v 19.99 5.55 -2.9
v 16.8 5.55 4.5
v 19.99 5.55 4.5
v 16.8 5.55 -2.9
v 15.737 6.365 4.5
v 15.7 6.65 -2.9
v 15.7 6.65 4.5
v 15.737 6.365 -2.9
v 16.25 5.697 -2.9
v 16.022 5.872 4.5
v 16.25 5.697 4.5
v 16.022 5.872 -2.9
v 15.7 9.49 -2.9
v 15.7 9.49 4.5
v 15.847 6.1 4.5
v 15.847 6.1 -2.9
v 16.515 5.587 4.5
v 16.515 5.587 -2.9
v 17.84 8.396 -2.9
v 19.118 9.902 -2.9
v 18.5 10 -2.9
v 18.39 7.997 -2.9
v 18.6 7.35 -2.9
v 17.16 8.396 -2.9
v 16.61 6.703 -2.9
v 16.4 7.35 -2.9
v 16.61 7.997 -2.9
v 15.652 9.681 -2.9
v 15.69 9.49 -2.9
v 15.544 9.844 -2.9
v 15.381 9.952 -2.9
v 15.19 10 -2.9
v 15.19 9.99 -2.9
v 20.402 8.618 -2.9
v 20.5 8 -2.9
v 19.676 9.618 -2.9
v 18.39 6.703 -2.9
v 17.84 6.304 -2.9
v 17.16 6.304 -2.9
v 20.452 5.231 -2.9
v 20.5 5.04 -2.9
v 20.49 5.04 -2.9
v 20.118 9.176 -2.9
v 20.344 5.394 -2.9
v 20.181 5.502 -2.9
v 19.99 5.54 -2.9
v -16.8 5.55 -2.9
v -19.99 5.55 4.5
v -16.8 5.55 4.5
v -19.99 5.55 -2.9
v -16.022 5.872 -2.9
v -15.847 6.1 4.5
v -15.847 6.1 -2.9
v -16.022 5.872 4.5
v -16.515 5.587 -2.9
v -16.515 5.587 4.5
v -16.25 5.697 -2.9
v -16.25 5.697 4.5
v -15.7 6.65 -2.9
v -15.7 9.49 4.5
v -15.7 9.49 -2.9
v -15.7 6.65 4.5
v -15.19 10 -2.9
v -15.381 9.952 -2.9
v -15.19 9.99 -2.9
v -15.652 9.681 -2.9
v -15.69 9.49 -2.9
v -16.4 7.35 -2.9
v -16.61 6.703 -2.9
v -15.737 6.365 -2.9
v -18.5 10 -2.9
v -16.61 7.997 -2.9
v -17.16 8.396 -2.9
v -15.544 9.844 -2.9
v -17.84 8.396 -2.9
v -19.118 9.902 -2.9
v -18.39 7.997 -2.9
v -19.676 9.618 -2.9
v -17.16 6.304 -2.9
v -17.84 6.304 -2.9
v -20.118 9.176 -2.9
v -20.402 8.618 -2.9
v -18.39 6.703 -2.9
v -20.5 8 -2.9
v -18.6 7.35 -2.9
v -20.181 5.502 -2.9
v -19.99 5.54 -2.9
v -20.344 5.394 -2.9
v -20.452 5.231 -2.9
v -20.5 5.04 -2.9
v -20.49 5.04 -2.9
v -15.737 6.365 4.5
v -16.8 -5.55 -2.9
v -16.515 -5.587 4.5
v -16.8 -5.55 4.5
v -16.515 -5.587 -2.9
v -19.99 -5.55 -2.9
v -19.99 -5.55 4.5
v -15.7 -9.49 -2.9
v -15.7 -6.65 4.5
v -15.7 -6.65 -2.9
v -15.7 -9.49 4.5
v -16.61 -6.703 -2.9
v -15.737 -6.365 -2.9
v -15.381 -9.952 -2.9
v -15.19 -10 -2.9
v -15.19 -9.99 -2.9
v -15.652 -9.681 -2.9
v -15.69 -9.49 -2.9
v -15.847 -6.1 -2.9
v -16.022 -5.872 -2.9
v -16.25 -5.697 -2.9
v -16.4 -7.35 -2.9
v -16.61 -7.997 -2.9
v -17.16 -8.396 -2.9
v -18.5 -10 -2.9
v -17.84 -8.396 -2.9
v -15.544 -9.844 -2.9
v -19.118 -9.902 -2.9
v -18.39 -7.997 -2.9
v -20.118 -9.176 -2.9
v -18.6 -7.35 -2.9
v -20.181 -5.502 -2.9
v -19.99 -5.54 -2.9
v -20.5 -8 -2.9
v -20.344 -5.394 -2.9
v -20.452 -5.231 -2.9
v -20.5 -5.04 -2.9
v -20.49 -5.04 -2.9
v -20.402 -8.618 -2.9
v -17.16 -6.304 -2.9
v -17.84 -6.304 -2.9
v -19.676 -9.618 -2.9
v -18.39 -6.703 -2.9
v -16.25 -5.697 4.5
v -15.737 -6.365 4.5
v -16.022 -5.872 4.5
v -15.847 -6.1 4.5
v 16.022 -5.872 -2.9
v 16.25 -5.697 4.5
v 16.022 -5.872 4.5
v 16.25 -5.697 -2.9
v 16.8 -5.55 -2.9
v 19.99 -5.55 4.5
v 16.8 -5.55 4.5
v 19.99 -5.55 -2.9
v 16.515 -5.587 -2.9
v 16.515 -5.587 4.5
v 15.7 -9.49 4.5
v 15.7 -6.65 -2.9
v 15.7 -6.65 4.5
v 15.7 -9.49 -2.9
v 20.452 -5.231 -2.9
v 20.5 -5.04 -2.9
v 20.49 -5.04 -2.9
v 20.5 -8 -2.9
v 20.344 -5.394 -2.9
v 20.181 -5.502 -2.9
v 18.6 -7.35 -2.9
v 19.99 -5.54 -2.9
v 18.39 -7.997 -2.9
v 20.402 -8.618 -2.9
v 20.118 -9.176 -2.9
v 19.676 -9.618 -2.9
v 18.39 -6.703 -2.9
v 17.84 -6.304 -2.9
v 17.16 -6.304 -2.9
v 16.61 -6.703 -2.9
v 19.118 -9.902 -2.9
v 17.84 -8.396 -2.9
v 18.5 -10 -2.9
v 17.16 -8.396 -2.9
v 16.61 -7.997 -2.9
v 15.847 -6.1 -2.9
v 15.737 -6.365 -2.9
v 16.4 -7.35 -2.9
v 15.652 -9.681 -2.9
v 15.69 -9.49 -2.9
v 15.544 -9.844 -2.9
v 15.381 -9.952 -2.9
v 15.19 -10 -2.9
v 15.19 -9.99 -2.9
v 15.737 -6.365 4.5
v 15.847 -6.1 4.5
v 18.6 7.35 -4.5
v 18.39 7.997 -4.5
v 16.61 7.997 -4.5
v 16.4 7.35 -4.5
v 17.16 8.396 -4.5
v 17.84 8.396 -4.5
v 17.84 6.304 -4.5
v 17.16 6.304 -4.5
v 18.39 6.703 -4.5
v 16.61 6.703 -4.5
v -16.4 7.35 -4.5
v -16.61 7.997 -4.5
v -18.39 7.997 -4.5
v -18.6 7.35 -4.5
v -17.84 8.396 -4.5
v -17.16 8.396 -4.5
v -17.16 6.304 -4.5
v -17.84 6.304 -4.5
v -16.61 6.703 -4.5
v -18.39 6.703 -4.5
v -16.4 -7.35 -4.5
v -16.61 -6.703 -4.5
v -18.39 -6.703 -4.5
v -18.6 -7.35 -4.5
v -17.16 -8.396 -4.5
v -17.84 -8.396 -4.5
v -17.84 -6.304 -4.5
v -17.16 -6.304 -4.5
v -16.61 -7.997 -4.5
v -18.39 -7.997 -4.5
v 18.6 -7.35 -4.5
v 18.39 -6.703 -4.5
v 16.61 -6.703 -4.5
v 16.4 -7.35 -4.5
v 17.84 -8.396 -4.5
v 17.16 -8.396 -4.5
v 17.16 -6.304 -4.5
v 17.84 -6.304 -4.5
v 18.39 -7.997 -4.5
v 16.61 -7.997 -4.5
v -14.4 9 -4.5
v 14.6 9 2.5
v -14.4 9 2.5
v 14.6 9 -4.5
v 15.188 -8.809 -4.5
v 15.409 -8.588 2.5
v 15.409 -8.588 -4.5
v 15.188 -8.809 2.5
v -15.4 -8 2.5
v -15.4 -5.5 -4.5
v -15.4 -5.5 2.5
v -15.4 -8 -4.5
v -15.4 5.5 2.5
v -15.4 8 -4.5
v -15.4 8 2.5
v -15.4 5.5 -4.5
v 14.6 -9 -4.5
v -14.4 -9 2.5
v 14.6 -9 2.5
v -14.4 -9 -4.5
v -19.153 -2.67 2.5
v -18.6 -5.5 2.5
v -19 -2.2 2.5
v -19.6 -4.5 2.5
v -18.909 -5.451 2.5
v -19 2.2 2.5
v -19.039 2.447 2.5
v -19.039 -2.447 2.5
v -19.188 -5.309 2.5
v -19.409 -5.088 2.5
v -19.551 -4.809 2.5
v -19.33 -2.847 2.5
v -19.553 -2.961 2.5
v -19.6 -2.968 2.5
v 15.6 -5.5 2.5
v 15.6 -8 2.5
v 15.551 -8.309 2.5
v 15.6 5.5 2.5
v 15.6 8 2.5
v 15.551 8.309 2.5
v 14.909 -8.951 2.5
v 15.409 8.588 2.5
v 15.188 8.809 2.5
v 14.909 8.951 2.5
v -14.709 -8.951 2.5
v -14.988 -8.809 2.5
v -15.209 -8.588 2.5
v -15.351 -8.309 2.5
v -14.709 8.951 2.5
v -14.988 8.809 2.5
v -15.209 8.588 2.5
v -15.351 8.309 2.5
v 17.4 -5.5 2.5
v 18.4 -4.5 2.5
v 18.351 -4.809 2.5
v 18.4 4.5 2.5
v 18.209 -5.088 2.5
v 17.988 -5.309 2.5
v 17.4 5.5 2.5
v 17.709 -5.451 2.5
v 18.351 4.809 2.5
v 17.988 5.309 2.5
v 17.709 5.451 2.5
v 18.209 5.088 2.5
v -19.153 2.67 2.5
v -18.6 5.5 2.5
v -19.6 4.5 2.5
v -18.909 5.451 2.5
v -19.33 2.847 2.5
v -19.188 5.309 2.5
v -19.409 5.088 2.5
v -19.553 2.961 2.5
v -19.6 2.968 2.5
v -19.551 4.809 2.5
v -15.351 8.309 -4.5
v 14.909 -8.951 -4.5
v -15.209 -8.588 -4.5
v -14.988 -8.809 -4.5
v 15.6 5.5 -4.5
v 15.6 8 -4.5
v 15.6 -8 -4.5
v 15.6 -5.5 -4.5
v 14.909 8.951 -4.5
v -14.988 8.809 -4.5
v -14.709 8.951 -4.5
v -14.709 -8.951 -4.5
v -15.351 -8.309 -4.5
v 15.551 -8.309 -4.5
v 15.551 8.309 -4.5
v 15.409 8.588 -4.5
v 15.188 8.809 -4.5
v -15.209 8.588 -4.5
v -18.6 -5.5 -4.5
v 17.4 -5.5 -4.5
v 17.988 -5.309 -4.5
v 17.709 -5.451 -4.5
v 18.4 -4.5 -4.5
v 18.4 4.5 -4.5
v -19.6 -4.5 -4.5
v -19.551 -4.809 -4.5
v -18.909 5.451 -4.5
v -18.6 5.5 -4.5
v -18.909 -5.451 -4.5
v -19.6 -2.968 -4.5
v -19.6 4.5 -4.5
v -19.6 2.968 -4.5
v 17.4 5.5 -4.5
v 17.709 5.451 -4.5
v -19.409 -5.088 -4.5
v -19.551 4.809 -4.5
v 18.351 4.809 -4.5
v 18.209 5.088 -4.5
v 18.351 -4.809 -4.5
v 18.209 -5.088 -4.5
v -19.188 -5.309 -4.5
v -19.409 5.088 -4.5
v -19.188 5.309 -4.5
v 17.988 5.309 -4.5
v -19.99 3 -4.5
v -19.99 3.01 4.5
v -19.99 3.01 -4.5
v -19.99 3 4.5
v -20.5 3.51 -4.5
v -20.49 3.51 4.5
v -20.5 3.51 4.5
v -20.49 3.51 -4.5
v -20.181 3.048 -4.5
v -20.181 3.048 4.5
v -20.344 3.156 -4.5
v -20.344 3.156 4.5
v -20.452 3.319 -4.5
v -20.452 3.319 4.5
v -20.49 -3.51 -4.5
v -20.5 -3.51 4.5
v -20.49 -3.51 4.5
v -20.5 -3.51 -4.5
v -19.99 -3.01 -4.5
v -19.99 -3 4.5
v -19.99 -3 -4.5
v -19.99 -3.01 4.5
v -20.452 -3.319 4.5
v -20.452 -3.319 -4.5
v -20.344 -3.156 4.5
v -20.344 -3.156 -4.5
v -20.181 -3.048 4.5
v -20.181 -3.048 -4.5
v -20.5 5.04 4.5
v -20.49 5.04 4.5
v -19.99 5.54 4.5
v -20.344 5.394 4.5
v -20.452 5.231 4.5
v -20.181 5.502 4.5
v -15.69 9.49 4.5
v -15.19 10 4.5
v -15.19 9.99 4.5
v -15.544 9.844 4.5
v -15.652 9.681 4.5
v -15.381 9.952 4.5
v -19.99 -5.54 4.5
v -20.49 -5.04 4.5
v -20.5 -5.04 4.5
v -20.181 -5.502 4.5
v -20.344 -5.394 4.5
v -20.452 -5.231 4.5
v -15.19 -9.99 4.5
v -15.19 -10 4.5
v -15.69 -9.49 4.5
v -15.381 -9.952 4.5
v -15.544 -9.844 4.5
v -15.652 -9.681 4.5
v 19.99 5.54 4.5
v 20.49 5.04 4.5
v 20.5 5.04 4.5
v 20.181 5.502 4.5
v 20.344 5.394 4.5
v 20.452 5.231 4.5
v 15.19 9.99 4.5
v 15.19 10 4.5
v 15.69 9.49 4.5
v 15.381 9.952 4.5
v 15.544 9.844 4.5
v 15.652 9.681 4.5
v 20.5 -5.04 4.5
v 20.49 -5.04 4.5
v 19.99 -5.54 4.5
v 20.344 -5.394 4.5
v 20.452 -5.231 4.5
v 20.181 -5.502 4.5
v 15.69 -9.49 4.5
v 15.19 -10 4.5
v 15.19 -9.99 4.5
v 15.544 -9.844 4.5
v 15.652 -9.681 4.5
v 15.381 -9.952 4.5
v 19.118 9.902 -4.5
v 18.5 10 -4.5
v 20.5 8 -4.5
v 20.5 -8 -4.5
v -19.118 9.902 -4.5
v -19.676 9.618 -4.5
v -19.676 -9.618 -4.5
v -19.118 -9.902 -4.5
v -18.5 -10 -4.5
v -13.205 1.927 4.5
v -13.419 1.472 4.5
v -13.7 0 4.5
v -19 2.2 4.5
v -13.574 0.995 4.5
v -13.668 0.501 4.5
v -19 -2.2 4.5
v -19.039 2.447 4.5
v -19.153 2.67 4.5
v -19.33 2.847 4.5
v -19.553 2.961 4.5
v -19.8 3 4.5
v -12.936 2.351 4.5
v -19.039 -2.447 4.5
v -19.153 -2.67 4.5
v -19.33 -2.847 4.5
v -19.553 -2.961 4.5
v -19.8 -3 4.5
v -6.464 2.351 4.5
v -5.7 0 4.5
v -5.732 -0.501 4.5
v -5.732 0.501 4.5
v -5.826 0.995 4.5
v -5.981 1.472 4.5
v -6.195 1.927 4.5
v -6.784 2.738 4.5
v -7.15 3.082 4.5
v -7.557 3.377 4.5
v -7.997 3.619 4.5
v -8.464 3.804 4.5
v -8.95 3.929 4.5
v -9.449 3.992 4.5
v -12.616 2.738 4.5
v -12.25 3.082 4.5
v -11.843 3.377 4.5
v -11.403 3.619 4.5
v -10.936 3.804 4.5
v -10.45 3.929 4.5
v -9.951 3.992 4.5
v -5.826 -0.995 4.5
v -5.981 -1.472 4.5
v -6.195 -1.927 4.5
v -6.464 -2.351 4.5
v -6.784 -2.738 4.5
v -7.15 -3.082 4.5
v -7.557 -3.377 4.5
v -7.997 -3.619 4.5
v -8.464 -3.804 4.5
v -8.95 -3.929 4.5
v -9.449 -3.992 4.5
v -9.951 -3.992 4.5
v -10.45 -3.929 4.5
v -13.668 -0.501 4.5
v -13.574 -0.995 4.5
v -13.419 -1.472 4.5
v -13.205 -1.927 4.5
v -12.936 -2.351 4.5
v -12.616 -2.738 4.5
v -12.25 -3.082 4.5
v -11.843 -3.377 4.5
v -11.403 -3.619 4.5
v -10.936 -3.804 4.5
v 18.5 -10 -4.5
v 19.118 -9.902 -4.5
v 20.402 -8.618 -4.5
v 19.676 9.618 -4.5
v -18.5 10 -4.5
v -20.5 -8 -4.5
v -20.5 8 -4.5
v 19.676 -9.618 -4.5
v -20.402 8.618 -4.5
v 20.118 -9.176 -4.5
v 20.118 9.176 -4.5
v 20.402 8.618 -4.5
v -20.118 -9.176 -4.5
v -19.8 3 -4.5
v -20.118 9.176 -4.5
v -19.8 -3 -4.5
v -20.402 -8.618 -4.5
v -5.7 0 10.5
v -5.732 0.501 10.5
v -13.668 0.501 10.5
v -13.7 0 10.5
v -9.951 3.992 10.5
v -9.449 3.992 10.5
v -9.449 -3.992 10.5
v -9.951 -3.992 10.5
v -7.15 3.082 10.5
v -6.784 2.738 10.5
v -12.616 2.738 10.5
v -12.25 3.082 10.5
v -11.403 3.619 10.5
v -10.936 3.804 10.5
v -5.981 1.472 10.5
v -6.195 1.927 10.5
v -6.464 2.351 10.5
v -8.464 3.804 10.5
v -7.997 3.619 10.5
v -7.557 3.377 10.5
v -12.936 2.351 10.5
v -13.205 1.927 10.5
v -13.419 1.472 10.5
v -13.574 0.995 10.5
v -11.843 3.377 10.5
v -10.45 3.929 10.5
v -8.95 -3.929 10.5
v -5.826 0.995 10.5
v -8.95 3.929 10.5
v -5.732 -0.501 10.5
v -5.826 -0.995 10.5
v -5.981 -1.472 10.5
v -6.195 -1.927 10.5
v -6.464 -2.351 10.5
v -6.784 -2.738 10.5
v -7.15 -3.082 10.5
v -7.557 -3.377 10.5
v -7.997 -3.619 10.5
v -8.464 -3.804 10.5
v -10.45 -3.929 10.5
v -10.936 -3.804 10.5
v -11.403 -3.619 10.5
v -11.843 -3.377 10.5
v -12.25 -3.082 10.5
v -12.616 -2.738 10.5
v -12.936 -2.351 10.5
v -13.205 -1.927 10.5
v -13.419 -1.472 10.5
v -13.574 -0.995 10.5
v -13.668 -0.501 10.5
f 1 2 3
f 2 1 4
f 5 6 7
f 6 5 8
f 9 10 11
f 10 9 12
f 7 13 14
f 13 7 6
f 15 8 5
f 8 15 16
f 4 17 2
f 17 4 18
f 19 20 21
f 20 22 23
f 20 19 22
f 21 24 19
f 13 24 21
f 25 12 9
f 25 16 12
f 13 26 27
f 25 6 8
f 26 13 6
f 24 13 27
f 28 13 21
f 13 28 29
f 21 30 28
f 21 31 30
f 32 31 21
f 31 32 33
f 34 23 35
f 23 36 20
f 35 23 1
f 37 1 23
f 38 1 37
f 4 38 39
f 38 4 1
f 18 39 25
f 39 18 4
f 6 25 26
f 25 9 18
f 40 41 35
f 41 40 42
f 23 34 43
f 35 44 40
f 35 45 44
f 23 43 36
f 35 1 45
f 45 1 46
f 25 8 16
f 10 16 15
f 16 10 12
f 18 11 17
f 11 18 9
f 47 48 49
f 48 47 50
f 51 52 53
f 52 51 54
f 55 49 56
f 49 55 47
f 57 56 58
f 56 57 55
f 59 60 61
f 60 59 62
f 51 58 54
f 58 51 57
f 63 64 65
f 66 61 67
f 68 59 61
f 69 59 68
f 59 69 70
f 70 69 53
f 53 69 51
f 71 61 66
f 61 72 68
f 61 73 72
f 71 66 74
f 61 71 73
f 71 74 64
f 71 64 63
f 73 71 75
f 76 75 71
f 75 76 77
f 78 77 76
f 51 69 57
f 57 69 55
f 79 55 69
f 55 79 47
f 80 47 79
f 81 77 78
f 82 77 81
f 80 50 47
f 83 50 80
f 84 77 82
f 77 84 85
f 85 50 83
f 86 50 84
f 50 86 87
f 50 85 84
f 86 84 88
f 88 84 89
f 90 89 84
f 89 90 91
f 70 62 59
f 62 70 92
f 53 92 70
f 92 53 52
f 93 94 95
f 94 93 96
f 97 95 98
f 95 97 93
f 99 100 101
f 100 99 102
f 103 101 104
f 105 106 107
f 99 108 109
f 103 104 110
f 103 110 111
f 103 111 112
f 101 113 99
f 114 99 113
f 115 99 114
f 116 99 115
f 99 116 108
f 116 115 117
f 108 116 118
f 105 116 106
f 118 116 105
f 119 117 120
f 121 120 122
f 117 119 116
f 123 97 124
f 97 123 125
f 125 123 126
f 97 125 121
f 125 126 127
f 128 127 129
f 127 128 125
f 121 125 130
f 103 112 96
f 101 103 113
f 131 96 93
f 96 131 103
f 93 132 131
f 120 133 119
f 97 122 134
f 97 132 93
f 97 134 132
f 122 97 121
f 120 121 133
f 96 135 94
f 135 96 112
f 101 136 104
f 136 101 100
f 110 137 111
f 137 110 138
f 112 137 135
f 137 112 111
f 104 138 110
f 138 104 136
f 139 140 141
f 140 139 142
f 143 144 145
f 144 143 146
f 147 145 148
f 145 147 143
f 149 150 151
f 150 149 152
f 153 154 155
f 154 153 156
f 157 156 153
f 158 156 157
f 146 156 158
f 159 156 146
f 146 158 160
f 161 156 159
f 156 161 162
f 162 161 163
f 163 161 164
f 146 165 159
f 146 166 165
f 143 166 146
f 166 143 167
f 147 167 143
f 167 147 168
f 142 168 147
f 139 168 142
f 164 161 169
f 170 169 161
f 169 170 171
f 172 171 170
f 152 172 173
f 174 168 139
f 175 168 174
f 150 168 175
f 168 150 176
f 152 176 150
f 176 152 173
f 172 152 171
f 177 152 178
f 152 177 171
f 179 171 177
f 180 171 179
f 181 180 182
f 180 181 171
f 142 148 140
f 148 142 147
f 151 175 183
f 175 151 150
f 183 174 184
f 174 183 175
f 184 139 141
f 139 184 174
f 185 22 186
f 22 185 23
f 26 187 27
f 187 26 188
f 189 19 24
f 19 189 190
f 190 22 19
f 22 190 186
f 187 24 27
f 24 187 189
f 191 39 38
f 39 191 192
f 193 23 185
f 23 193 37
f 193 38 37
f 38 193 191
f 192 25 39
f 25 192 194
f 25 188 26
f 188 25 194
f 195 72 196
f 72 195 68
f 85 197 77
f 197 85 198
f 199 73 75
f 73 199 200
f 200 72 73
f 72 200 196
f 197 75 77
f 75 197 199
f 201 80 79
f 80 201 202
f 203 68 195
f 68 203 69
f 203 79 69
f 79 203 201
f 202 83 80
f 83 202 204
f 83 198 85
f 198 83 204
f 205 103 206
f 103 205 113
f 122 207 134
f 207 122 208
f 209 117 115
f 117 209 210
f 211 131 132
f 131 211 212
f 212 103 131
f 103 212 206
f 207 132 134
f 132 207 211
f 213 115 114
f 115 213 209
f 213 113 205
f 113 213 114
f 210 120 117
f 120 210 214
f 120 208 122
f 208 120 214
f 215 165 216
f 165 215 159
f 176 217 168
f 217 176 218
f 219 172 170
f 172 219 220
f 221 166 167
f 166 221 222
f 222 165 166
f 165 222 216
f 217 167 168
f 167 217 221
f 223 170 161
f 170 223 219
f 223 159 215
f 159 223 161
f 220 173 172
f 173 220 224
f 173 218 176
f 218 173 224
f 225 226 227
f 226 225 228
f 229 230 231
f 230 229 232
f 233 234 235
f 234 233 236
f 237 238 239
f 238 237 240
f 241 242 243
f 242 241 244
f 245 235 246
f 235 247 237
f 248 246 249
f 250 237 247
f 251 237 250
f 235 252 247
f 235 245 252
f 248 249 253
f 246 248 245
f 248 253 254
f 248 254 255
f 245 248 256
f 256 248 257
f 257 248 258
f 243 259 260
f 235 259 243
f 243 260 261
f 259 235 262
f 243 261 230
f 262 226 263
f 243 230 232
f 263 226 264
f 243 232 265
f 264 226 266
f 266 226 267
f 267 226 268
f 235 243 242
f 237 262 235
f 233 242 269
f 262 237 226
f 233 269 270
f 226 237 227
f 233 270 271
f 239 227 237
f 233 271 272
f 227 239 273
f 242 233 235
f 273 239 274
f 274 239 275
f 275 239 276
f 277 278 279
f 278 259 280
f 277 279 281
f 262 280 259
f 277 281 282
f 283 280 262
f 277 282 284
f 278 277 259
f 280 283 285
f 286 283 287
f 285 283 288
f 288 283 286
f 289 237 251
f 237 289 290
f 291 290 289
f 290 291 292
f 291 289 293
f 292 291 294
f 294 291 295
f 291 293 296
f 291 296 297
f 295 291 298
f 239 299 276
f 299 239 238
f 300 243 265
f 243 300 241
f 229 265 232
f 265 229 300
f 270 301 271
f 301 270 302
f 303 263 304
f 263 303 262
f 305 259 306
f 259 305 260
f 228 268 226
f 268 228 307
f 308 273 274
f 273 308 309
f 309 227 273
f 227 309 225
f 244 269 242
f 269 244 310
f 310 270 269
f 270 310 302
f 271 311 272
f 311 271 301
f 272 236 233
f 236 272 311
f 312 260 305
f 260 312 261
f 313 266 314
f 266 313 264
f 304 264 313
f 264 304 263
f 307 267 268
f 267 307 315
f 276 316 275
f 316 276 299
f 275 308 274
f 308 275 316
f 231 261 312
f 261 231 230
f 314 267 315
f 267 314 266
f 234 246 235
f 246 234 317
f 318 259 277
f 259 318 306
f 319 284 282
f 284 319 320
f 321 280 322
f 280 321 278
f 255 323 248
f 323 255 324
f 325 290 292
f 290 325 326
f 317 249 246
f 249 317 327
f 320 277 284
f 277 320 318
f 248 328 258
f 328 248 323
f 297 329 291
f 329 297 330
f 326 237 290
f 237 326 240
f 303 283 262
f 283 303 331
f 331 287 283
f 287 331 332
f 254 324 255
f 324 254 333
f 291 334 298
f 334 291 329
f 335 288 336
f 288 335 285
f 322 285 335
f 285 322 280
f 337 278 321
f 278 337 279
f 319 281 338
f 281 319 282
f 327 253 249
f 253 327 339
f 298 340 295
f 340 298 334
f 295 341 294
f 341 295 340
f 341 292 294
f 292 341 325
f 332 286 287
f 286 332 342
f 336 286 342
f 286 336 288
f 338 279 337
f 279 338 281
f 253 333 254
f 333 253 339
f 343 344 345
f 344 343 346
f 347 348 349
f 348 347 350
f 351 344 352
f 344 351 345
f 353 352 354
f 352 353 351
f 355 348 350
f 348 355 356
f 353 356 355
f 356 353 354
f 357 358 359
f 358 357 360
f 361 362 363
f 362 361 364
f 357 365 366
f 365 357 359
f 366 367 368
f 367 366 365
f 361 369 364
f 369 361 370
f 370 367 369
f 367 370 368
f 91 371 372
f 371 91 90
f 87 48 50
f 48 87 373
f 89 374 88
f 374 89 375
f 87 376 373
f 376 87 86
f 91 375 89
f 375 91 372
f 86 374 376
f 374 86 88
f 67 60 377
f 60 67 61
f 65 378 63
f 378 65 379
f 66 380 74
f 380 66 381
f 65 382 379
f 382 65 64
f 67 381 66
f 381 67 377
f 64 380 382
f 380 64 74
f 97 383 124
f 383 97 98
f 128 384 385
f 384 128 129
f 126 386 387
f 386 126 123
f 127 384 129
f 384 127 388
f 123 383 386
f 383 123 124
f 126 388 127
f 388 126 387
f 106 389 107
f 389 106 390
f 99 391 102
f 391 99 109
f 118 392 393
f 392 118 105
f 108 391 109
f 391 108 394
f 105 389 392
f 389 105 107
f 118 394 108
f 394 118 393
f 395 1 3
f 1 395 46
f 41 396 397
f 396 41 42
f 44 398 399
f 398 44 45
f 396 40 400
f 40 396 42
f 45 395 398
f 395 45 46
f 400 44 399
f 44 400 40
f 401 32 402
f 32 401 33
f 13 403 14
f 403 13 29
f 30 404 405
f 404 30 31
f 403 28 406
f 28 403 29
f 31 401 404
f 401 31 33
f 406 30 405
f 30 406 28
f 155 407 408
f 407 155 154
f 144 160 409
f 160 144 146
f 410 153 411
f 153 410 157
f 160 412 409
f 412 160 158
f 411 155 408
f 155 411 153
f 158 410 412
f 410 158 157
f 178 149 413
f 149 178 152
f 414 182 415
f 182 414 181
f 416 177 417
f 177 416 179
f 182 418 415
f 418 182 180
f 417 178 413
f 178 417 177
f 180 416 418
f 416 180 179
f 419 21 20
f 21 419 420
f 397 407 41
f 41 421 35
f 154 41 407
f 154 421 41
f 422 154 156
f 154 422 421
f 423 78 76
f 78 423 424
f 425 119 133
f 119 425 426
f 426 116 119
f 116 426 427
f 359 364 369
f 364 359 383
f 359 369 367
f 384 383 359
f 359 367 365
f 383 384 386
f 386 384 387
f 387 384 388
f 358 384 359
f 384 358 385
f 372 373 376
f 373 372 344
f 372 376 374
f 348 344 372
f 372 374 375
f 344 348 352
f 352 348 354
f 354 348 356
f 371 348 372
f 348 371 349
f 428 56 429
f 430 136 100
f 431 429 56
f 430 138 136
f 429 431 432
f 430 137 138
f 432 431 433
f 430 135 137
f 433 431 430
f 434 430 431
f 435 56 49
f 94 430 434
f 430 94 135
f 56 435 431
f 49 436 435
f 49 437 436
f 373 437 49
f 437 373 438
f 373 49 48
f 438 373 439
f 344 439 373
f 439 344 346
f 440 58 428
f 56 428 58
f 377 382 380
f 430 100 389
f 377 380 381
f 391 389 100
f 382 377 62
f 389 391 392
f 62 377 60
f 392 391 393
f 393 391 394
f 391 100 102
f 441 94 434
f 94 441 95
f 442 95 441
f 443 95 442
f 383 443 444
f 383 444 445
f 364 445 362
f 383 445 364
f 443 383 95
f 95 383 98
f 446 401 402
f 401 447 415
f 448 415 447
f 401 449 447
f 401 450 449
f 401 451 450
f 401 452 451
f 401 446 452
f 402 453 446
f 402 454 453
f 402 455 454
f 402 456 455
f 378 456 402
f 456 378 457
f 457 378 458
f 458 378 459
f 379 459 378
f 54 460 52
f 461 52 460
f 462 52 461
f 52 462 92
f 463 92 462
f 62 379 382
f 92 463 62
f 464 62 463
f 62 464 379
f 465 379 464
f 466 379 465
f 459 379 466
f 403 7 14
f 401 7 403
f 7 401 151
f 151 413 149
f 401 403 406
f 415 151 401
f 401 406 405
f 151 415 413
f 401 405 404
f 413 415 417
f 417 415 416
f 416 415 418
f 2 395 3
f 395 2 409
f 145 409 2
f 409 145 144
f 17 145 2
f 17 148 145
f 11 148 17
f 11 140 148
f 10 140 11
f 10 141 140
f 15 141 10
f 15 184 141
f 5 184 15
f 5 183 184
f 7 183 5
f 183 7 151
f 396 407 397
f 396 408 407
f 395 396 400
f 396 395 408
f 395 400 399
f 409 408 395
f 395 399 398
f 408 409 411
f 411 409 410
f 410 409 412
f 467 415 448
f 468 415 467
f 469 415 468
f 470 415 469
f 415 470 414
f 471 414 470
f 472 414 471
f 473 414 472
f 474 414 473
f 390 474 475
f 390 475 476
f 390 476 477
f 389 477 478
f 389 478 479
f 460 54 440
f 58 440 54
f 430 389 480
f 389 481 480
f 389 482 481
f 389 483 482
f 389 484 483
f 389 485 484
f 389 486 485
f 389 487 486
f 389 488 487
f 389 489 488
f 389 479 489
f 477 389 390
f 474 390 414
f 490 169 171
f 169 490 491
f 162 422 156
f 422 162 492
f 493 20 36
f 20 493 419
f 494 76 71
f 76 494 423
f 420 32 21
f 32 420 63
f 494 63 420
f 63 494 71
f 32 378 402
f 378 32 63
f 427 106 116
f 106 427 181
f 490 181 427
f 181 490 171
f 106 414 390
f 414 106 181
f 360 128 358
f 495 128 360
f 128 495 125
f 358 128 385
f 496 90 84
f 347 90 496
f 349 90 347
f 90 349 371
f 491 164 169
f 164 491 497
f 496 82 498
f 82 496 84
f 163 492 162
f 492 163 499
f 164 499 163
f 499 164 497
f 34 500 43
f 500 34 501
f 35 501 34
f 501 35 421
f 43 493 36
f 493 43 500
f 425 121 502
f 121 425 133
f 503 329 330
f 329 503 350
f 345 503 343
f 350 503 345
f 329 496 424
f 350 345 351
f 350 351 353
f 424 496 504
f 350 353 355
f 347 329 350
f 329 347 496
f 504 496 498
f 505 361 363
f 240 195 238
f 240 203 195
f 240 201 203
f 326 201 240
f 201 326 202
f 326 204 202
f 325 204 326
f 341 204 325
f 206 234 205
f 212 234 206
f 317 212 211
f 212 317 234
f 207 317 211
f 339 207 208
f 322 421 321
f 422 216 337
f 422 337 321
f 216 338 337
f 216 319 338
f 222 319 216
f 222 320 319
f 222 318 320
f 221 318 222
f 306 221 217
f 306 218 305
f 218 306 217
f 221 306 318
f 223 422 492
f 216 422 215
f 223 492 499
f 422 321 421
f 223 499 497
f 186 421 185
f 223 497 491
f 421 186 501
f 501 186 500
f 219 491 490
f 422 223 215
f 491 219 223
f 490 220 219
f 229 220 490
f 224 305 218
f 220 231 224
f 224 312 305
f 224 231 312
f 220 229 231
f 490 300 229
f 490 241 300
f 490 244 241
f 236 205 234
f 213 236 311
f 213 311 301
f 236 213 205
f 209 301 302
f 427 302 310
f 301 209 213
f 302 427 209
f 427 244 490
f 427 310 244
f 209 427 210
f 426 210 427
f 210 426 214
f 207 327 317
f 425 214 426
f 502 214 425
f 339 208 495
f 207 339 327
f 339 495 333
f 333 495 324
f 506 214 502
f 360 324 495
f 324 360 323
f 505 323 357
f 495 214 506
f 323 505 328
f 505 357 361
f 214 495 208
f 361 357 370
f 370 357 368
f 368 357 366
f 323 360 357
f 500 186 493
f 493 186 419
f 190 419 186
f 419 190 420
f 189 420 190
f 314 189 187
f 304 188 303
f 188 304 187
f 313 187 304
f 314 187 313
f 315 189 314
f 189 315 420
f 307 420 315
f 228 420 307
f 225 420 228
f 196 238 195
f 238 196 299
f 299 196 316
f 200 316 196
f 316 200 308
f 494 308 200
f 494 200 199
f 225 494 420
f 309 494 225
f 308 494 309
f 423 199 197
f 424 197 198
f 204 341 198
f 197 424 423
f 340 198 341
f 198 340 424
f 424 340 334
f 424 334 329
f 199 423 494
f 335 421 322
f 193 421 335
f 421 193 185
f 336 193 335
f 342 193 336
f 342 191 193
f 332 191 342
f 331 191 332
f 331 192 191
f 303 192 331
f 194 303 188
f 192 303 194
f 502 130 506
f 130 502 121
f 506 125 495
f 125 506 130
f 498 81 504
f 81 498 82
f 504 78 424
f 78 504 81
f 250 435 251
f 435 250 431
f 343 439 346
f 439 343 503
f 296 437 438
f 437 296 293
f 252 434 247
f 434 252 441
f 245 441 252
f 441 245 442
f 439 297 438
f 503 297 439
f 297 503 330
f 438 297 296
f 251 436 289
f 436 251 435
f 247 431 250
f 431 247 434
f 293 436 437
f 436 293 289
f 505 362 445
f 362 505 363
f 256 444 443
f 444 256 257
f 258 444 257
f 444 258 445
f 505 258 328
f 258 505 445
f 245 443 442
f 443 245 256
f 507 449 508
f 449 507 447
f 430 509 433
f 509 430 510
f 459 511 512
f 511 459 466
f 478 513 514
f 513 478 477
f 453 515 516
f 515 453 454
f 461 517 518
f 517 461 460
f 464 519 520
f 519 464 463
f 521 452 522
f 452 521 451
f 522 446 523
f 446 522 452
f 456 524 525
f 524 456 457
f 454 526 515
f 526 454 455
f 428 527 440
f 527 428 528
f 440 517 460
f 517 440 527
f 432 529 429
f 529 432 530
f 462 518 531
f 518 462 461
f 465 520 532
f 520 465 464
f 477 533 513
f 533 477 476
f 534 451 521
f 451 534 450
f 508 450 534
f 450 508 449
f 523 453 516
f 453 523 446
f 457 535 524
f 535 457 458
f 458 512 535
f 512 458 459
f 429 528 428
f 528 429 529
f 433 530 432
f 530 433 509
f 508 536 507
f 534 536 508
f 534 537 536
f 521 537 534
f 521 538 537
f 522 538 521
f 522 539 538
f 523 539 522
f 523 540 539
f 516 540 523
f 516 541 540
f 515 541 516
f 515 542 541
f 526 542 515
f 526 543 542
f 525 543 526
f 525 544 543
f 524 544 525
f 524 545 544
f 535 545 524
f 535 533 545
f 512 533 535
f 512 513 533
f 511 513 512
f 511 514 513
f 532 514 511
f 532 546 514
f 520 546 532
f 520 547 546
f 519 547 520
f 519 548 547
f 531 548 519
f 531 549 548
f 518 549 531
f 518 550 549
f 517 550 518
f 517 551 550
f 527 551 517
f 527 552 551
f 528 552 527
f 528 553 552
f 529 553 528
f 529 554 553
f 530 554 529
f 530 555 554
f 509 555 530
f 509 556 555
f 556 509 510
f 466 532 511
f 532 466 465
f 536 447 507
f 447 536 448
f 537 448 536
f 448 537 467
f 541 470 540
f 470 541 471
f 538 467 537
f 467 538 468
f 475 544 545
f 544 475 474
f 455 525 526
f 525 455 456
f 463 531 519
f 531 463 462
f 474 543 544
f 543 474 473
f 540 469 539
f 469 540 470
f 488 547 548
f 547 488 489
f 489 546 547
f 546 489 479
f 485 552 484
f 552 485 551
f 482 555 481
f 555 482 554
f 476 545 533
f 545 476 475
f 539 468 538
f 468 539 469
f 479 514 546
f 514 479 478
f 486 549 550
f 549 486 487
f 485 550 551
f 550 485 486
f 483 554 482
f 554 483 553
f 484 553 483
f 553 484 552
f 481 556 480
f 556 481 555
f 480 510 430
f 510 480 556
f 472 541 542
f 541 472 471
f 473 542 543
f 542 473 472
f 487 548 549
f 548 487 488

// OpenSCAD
// file: obiscad/attach.scad
//---------------------------------------------------------------
//-- Openscad Attachment library
//-- Attach parts easily. Make your designs more reusable and clean
//---------------------------------------------------------------
//-- This is a component of the obiscad opescad tools by Obijuan
//-- (C) Juan Gonzalez-Gomez (Obijuan)
//-- Sep-2012
//---------------------------------------------------------------
//-- Released under the GPL license
//---------------------------------------------------------------

use <vector.scad>

//--------------------------------------------------------------------
//-- Draw a connector
//-- A connector is defined a 3-tuple that consist of a point
//--- (the attachment point), and axis (the attachment axis) and
//--- an angle the connected part should be rotate around the 
//--  attachment axis
//--
//--- Input parameters:
//--
//--  Connector c = [p , n, ang] where:
//--
//--     p : The attachment point
//--     v : The attachment axis
//--   ang : the angle
//--------------------------------------------------------------------
module connector(c)
{
  //-- Get the three components from the connector
  p = c[0];
  v = c[1];
  ang = c[2];

  //-- Draw the attachment poing
  color("Gray") point(p);

  //-- Draw the attachment axis vector (with a mark)
  translate(p)
    rotate(a=ang, v=v)
    color("Gray") vector(unitv(v)*6, l_arrow=2, mark=true);
}


//-------------------------------------------------------------------------
//--  ATTACH OPERATOR
//--  This operator applies the necesary transformations to the 
//--  child (attachable part) so that it is attached to the main part
//--  
//--  Parameters
//--    a -> Connector of the main part
//--    b -> Connector of the attachable part
//-------------------------------------------------------------------------
module attach(a,b)
{
  //-- Get the data from the connectors
  pos1 = a[0];  //-- Attachment point. Main part
  v    = a[1];  //-- Attachment axis. Main part
  roll = a[2];  //-- Rolling angle
  
  pos2 = b[0];  //-- Attachment point. Attachable part
  vref = b[1];  //-- Atachment axis. Attachable part
                //-- The rolling angle of the attachable part is not used

  //-------- Calculations for the "orientate operator"------
  //-- Calculate the rotation axis
  raxis = cross(vref,v);
    
  //-- Calculate the angle between the vectors
  ang = anglev(vref,v);
  //--------------------------------------------------------.-

  //-- Apply the transformations to the child ---------------------------

  //-- Place the attachable part on the main part attachment point
  translate(pos1)
    //-- Orientate operator. Apply the orientation so that
    //-- both attachment axis are paralell. Also apply the roll angle
    rotate(a=roll, v=v)  rotate(a=ang, v=raxis)
      //-- Attachable part to the origin
      translate(-pos2)
	children(0); 
}


//--------------------------------------------------------------------
//---   An example of the attach operator
//---  
//---  There are two parts: the main body and an arm
//---  They both are cubes (for simplicity)
//---
//--   In the main body there are 2 connectors defined, so that
//--  the arm can be attached to any of them (or both if you like)
//------------------------------------------------------------------

//-- In the debug mode the connectors and additional information
//-- are shown
debug=true;

//-- Define the Main part: A cube
//-- Two attachment points are defined: one on the top, another in the
//--- left side
size = [10,10,10];

//-- Connectors defined:

//--     Att. point       Att. Axis  Roll
c1 = [ [0,0,size[2]/2],  [0,0,1],     20];  //-- Connector on the top
c2 = [ [-size[0]/2,0,0], [-1,0,0],    90];  //-- Connector on the left


//-- Draw the main part along with the connectors (for debugging)
cube(size,center=true);

//-- In debug mode: Draw the main part connectors!
if (debug) {
  connector(c1);
  connector(c2);
}

//-- Define the Attachable part. It is another cube, with one connector
asize = [5,20,3];
a = [ [0,asize[1]/2-3,-asize[2]/2], [0,0,1], 0  ];


//-- Do the attach!
//-- Just change c1 by c2 to attach the part to the other 
//-- connector. Super-easy!! :-)
//-- Modify the c1 and c2 roll angle for rotating the attachable
//--  part to the desired orientation
attach(c1,a)
  //-- This is the attachable part! 
  union() {
    cube(asize,center=true);  //-- The part

    //-- In debug mode show additional info:
    if (debug) {
      frame(l=10);    //-- The part frame of reference.
      connector(a);   //-- Show the part connector
    }
  };

  
// file: obiscad/bcube.scad
//------------------------------------------------------------------------------
//  Bevel edge cube.
//  (c) Juan Gonzalez-Gomez (Obijuan), Sep-2012
//------------------------------------------------------------------------------

//----------------- IMPLEMENTATION USING THE MINKOWSKI OPERATOR ----------------

//------------------------------------------------------------------------------
//-- Bevel Cube main function
//-- Parameters:
//--   * Size:  Cube size
//--   * cr : Corner radius (if cr==0, a standar cube is built)
//--   * cres:  Corner resolution (in points). cres=0 means flat corners
//------------------------------------------------------------------------------
module bcube(size,cr=0,cres=0)
{
  //-- Internal cube size
  bsize = size - 2*[cr,cr,0];

  //-- Get the (x,y) coorner coordinates in the 1st cuadrant
  x = bsize[0]/2;
  y = bsize[1]/2;

  //-- A corner radius of 0 means a standar cube!
  if (cr==0)
    cube(bsize,center=true);
  else {

      
      //-- The height of minkowski object is double. So
      //-- we sould scale by 0.5
      scale([1,1,0.5])

      //-- This translation is for centering the minkowski objet
      translate([-x, -y,0])

      //-- Built the  beveled cube with minkowski
      minkowski() {

        //-- Internal cube
        cube(bsize,center=true);

        //-- Cylinder in the corner (1st cuadrant)
        translate([x,y, 0])
          cylinder(r=cr, h=bsize[2],center=true, $fn=4*(cres+1));
      }
  }

}


//-- Examples of use of the bcube() module

//-- Standar cube
translate([-15,15,0])
bcube([20,20,10]);

//-- Beveled cube (0 point resolution)
translate([15,15,0])
  bcube([20,20,10],cr=4);

//-- Beveled cube (1 point resolution)
translate([-15,-15,0])
  bcube([20,20,10],cr=4, cres=1);

//-- Beveled cube (4 points resolution)
translate([15,-15,0])
  bcube([20,20,10],cr=4, cres=4);
// file: obiscad/utils.scad
//---------------------------------------------------------------
//-- Utils. General utilities...
//-- This is a component of the obiscad opescad tools by Obijuan
//-- (C) Juan Gonzalez-Gomez (Obijuan)
//-- Sep-2012
//---------------------------------------------------------------
//-- Released under the GPL license
//---------------------------------------------------------------

//-----------------------------------------------------
//-- Functions for converting a scalar into a vector:
//-----------------------------------------------------
//-- The scalar is interpreted as the x coordinate
function VX(x) = [x,0,0];

//-- The scalar is interpreted as the y coordinate
function VY(y) = [0,y,0];

//-- The scalar is interpreted as the z coordinate
function VZ(z) = [0,0,z];


//-----------------------------------------
//-- Definition for accessing vector componentes easily
//--------------------------------------------------------
X = 0;
Y = 1;
Z = 2;
// main file
//-------------------------------------------------------------------
//-- Servo lid replacement
//-- (c) Juan Gonzalez-Gomez (Obijuan). Sep-2012
//-------------------------------------------------------------------
//-- The original lid has been design for the Futaba 3003 servos
//-- But, as it is a parameterized design, the user can easily
//-- adapt to other servos
//--
//--  In addition, it is very easy to modify the lid to add a fake
//--- shaft, or in general customize it for improving the design
//--
//--  It is particulary interesting for designing robots. If a fake
//--  shaft is included, the mechanical designs are greatly simplified! 
//-------------------------------------------------------------------
//-- Released under the GPL license. 
//-------------------------------------------------------------------

//---  Obiscad!!
include <obiscad/utils.scad>
use <obiscad/bcube.scad>
use <obiscad/attach.scad>
use <obiscad/bevel.scad>

//-----------------------------------------------------------------------------------
//-- USER AREA. The user should change this parameters depending on the Servo used  
//-- The default values have been calculated for the SERVO FUTABA 3003
//-----------------------------------------------------------------------------------

//-- Fake shaft
fake_shaft = true;   //-- Set to false for removing
fake_shaft_len = 6;  //-- Shaft length
fake_shaft_diam = 8;  //-- Shaft diameter
fake_shaft_xpos = -9.7;  //-- X coordinate of the shaf position



//-------------------------- Main Base --------------------------
bsize = [41, 20, 9];  //-- base size
b_cr=2;               //-- Base corner radius
b_cres=4;             //-- Baser corner resolution


//-- ----------------------- Screw cutouts ----------------------
//-- These are the areas removed from the main base to give
//-- room to the screw heads
screw_lh = 1.6;         //- Screw layer height, Relative to the bottom
screw_head_diam = 3.2;  //-- Screw head diameter
screw_head_clear = 0.2; //-- Space between the screw head and the base


//-------------------------- Drills ------------------------------
ddiam=2.2;  //-- Drills diameter
ddx=35;     //-- Distance in the x axis between the drills
ddy=14.7;   //-- Distance in the y axis between the distance

//-------------------------- Electronic cutouts -------------------
//-- These are removed from the bottom of the base to make room
//-- for the servo electronics
elec_cutout_lh = 7;

//-- dimensions (on xy plane) of the cutouts
elec_cutout_dim = [
  [31, 18],   //-- Left cutout
  [38,  11],   //-- Right cutout
];

//-- Distance from the nearer drill (on the x axis)
//-- (not from the drill center, but the nearest drill surface)
//-- (so that it can be meassured easily with a caliper)
elec_cutout_clearx = [
  1, -2
];

elec_co_cr = 1;    //-- Corner radius
elec_co_cres = 4;  //-- Corner resolution

//-------------------------- Cable hole ----------------------------
//-- Cable hole dimensions
cable_hole_dim = [1.5, 6];

ch_cr = 0.8;  //-- Cable hole corner radius
ch_cres = 4;  //-- Cable hole corner resolution

//------------------------ Beveled edges -----------------------------
bevel_cr = 0.5;




//---------------------------------------------------------------------------------
//---        IMPLEMENTATION!!
//---------------------------------------------------------------------------------
//--  The USER should be able to change the base modifying only the above
//--  user parameters
//--
//--  The implementation is divided into 2 stages:
//--
//--  1) DATA calculation: It creates tables and definitions for further
//--     build the base more easily
//--  2) CODE: It just build the Servo Base, based only on the data
//-----------------------------------------------------------------------------------


//---------------------------------------
//-- DATA for the drills
//---------------------------------------
//-- Calculate the drill coordinates from the center of the base
dx=ddx/2;
dy=ddy/2;

//-- Build the drill table, for automating the process of 
//-- making drills
//-- All the drill are symetric respect the x and y axis
drill_table = [
  [dx,   dy, 0],
  [-dx,  dy, 0],
  [-dx, -dy, 0],
  [dx,  -dy, 0],
];


//-------------------------------------------------------------
//-- DATA for the First layer: screw layer
//-------------------------------------------------------------

//-- Extra value. Does not matter the value (but it should be > 0
extra = 5;


//-- Calculate the clear distance from the drill center
clear = screw_head_diam/2 + screw_head_clear;

//-- Calculate the cutout size
scx = bsize[X]/2-drill_table[0][X]+clear+extra;
scy = bsize[Y]/2-drill_table[0][Y]+clear+extra;
screw_cutout_size = [scx,scy, bsize[Z]];

//-- vector for the z position of the cutouts:
//-- They are screw_lh high from the bottom 
sc_z = [0,0, -bsize[Z]/2+screw_lh];


//-- Connector table. It contains the pairs of connectors for performing
//-- the attach operation.
//-- The first connector of the pair belongs to the base, the second to the cutout
//-- The connectors coordinates are relative to the drills
screw_connector_table = [

  //-- First quadrant
  [ [drill_table[0]+[-clear, -clear,0]+sc_z, [0,0,1], 0 ],  //-- First pair of connectors
   [[-screw_cutout_size[X]/2, -screw_cutout_size[Y]/2, -screw_cutout_size[Z]/2],[0,0,1],0]
  ],

  //-- Second quadrant
  [ [drill_table[1]+[clear, -clear,0]+sc_z, [0,0,1], 0 ],
    [[screw_cutout_size[X]/2, -screw_cutout_size[Y]/2, -screw_cutout_size[Z]/2],[0,0,1],0]
  ],

  //-- Third quadrant
  [ [drill_table[2]+[clear, clear,0]+sc_z, [0,0,1], 0 ],
    [[screw_cutout_size[X]/2, screw_cutout_size[Y]/2, -screw_cutout_size[Z]/2],[0,0,1],0]
  ],

  //-- Forth quadrant
  [ [drill_table[3]+[-clear, clear,0]+sc_z, [0,0,1], 0 ],
    [[-screw_cutout_size[X]/2, screw_cutout_size[Y]/2, -screw_cutout_size[Z]/2],[0,0,1],0]
  ],
 
];

//---------------------------------------
//-- DATA for the electronics cutouts
//---------------------------------------

//-- vector for the z position of the cutouts:
//-- They are elec_cutout_lh high from the bottom 
ec_z = [0,0, -bsize[Z]/2+elec_cutout_lh];

//-- Auxiliary table with the cutout size
elec_co_size = [
  [elec_cutout_dim[0][X], elec_cutout_dim[0][Y], bsize[Z]],
  [elec_cutout_dim[1][X], elec_cutout_dim[1][Y], bsize[Z]]
];


//-- Connector table. It contains the pairs of connectors for performing
//-- the attach operation.
//-- The first connector of the pair belongs to the base, the second to the cutout
//-- The connectors coordinates are relative to the drills
elec_connector_table = [

  //-- Connector pair for the Left cutout (relative to the upper-left drill)
  [ [VX(drill_table[1][X]+ddiam/2+elec_cutout_clearx[0])+
     VY(elec_co_size[0][Y]/2)+ ec_z,
     [0,0,1], 0],                        //-- Base connector
     
    [[-elec_co_size[0][X]/2, elec_co_size[0][Y]/2 ,elec_co_size[0][Z]/2],[0,0,1],0]
  ],
 
  //-- connector pair for the right cutout (relative to the upper-right drill)
  [ [VX(drill_table[0][X]-ddiam/2-elec_cutout_clearx[1])+
     VY(elec_co_size[1][Y]/2)+ec_z,
     [0,0,1], 0],

    [[elec_co_size[1][X]/2, elec_co_size[1][Y]/2 ,elec_co_size[1][Z]/2],[0,0,1],0]
  ],

];

//--------------------------------
//-- DATA for the cable hole
//--------------------------------
//-- Calculate the cable hole size
//-- In the x-axis is doble sized
ch_size = [2*cable_hole_dim[X], cable_hole_dim[Y], bsize[Z]+extra];

//-- Connectors pair for attaching a bcube and make the difference
ch_conn_pair = [
  [[-bsize[X]/2,0,0], [0,0,1], 0],
  [[0,0,0], [0,0,1], 0],
];

//---------------------------------------
//-- DATA for beveling some edges
//---------------------------------------

//-- Table of Pair of connectors for beveling
//-- corner connector, normal connect and bevel length
bevel_table = [
  
  //-- cable hole external corners
  //-- Upper
  [ [[-bsize[X]/2, ch_size[Y]/2 ,0], [0 ,0 ,1], 0],
    [[-bsize[X]/2, ch_size[Y]/2 ,0], [-1,-1,0], 0],
    bsize[Z]+extra 
  ],

  //-- Lower
  [ [[-bsize[X]/2, -ch_size[Y]/2 ,0], [0 ,0 ,1], 0],
    [[-bsize[X]/2, -ch_size[Y]/2 ,0], [-1,1,0], 0],
    bsize[Z]+extra 
  ],

  //-- Beveling the Upper-left screw cutout (1) 
  [ [[-bsize[X]/2, drill_table[1][Y]-clear ,bsize[Z]/2], [0 ,0 ,1], 0],
    [[-bsize[X]/2, drill_table[1][Y]-clear ,bsize[Z]/2], [-1,1,0], 0],
    2*(bsize[Z]-screw_lh) 
  ],

  //-- Beveling the Upper-left screw cutout (2) 
  [ [[drill_table[1][X]+clear, bsize[Y]/2 ,bsize[Z]/2], [0 ,0 ,1], 0],
    [[drill_table[1][X]+clear, bsize[Y]/2 ,bsize[Z]/2], [-1,1,0], 0],
    2*(bsize[Z]-screw_lh) 
  ],

   //-- Beveling the lower-left screw cutout (1) 
  [ [[-bsize[X]/2, drill_table[2][Y]+clear ,bsize[Z]/2], [0 ,0 ,1], 0],
    [[-bsize[X]/2, drill_table[2][Y]+clear ,bsize[Z]/2], [-1,-1,0], 0],
    2*(bsize[Z]-screw_lh) 
  ],

  //-- Beveling the lower-left screw cutout (2) 
  [ [[drill_table[2][X]+clear, -bsize[Y]/2 ,bsize[Z]/2], [0 ,0 ,1], 0],
    [[drill_table[2][X]+clear, -bsize[Y]/2 ,bsize[Z]/2], [-1,-1,0], 0],
    2*(bsize[Z]-screw_lh) 
  ], 

  //-- Beveling the Upper-right screw cutout (1) 
  [ [[bsize[X]/2, drill_table[0][Y]-clear ,bsize[Z]/2], [0 ,0 ,1], 0],
    [[bsize[X]/2, drill_table[0][Y]-clear ,bsize[Z]/2], [1,1,0], 0],
    2*(bsize[Z]-screw_lh) 
  ],

  //-- Beveling the Upper-right screw cutout (2) 
  [ [[drill_table[0][X]-clear, bsize[Y]/2 ,bsize[Z]/2], [0 ,0 ,1], 0],
    [[drill_table[0][X]-clear, bsize[Y]/2 ,bsize[Z]/2], [1,1,0], 0],
    2*(bsize[Z]-screw_lh) 
  ],

   //-- Beveling the lower-right screw cutout (1) 
  [ [[bsize[X]/2, drill_table[3][Y]+clear ,bsize[Z]/2], [0 ,0 ,1], 0],
    [[bsize[X]/2, drill_table[3][Y]+clear ,bsize[Z]/2], [1,-1,0], 0],
    2*(bsize[Z]-screw_lh) 
  ],

  //-- Beveling the lower-right screw cutout (2) 
  [ [[drill_table[3][X]-clear, -bsize[Y]/2 ,bsize[Z]/2], [0 ,0 ,1], 0],
    [[drill_table[3][X]-clear, -bsize[Y]/2 ,bsize[Z]/2], [1,-1,0], 0],
    2*(bsize[Z]-screw_lh) 
  ], 

];

//----------------------------------
//--  Fake shaft
//----------------------------------
//-- Define the connector pair
fs_con_pair = [
  [ [fake_shaft_xpos, 0, bsize[Z]/2],[0,0,1], 0],
  [[0,0,-fake_shaft_len/2],[0,0,1],0]
];


//----------------------------------------------------------------
//---         CODE!!
//----------------------------------------------------------------
//-- No numbers. Just the actions for creating the base
//-- It is very easy to remove parts: comment them out!
//-----------------------------------------------------------------


difference() {

  //-- Main Base
  bcube(bsize,cr=b_cr, cres=b_cres);

  
  //-- Screw cutouts
  for (con_pair = screw_connector_table) {
    attach(con_pair[0], con_pair[1])
      bcube(screw_cutout_size, cr=ddiam/2, cres=5);
  }
  

  //-- Drills
  for (pos  = drill_table) {
    translate(pos)
      cylinder(r=ddiam/2, h=bsize[Z]+extra, center=true, $fn=10);
  }

  //-- Electronics cutouts
  for (i=[0:1]) {
    attach(elec_connector_table[i][0], elec_connector_table[i][1])
      bcube(elec_co_size[i] , cr=elec_co_cr, cres = elec_co_cres);
  }

  //-- Cable hole
  attach(ch_conn_pair[0],ch_conn_pair[1])
    bcube(ch_size, cr=ch_cr, cres=ch_cres);

  //-- Beveling the edges
  for (tuple = bevel_table)
    bevel( tuple[0], tuple[1], l=tuple[2], cr=bevel_cr);

}


//-- Fake shaft

if (fake_shaft) {
  attach(fs_con_pair[0], fs_con_pair[1])
    cylinder(r=fake_shaft_diam/2, h=fake_shaft_len,center=true, $fn=50);
}
